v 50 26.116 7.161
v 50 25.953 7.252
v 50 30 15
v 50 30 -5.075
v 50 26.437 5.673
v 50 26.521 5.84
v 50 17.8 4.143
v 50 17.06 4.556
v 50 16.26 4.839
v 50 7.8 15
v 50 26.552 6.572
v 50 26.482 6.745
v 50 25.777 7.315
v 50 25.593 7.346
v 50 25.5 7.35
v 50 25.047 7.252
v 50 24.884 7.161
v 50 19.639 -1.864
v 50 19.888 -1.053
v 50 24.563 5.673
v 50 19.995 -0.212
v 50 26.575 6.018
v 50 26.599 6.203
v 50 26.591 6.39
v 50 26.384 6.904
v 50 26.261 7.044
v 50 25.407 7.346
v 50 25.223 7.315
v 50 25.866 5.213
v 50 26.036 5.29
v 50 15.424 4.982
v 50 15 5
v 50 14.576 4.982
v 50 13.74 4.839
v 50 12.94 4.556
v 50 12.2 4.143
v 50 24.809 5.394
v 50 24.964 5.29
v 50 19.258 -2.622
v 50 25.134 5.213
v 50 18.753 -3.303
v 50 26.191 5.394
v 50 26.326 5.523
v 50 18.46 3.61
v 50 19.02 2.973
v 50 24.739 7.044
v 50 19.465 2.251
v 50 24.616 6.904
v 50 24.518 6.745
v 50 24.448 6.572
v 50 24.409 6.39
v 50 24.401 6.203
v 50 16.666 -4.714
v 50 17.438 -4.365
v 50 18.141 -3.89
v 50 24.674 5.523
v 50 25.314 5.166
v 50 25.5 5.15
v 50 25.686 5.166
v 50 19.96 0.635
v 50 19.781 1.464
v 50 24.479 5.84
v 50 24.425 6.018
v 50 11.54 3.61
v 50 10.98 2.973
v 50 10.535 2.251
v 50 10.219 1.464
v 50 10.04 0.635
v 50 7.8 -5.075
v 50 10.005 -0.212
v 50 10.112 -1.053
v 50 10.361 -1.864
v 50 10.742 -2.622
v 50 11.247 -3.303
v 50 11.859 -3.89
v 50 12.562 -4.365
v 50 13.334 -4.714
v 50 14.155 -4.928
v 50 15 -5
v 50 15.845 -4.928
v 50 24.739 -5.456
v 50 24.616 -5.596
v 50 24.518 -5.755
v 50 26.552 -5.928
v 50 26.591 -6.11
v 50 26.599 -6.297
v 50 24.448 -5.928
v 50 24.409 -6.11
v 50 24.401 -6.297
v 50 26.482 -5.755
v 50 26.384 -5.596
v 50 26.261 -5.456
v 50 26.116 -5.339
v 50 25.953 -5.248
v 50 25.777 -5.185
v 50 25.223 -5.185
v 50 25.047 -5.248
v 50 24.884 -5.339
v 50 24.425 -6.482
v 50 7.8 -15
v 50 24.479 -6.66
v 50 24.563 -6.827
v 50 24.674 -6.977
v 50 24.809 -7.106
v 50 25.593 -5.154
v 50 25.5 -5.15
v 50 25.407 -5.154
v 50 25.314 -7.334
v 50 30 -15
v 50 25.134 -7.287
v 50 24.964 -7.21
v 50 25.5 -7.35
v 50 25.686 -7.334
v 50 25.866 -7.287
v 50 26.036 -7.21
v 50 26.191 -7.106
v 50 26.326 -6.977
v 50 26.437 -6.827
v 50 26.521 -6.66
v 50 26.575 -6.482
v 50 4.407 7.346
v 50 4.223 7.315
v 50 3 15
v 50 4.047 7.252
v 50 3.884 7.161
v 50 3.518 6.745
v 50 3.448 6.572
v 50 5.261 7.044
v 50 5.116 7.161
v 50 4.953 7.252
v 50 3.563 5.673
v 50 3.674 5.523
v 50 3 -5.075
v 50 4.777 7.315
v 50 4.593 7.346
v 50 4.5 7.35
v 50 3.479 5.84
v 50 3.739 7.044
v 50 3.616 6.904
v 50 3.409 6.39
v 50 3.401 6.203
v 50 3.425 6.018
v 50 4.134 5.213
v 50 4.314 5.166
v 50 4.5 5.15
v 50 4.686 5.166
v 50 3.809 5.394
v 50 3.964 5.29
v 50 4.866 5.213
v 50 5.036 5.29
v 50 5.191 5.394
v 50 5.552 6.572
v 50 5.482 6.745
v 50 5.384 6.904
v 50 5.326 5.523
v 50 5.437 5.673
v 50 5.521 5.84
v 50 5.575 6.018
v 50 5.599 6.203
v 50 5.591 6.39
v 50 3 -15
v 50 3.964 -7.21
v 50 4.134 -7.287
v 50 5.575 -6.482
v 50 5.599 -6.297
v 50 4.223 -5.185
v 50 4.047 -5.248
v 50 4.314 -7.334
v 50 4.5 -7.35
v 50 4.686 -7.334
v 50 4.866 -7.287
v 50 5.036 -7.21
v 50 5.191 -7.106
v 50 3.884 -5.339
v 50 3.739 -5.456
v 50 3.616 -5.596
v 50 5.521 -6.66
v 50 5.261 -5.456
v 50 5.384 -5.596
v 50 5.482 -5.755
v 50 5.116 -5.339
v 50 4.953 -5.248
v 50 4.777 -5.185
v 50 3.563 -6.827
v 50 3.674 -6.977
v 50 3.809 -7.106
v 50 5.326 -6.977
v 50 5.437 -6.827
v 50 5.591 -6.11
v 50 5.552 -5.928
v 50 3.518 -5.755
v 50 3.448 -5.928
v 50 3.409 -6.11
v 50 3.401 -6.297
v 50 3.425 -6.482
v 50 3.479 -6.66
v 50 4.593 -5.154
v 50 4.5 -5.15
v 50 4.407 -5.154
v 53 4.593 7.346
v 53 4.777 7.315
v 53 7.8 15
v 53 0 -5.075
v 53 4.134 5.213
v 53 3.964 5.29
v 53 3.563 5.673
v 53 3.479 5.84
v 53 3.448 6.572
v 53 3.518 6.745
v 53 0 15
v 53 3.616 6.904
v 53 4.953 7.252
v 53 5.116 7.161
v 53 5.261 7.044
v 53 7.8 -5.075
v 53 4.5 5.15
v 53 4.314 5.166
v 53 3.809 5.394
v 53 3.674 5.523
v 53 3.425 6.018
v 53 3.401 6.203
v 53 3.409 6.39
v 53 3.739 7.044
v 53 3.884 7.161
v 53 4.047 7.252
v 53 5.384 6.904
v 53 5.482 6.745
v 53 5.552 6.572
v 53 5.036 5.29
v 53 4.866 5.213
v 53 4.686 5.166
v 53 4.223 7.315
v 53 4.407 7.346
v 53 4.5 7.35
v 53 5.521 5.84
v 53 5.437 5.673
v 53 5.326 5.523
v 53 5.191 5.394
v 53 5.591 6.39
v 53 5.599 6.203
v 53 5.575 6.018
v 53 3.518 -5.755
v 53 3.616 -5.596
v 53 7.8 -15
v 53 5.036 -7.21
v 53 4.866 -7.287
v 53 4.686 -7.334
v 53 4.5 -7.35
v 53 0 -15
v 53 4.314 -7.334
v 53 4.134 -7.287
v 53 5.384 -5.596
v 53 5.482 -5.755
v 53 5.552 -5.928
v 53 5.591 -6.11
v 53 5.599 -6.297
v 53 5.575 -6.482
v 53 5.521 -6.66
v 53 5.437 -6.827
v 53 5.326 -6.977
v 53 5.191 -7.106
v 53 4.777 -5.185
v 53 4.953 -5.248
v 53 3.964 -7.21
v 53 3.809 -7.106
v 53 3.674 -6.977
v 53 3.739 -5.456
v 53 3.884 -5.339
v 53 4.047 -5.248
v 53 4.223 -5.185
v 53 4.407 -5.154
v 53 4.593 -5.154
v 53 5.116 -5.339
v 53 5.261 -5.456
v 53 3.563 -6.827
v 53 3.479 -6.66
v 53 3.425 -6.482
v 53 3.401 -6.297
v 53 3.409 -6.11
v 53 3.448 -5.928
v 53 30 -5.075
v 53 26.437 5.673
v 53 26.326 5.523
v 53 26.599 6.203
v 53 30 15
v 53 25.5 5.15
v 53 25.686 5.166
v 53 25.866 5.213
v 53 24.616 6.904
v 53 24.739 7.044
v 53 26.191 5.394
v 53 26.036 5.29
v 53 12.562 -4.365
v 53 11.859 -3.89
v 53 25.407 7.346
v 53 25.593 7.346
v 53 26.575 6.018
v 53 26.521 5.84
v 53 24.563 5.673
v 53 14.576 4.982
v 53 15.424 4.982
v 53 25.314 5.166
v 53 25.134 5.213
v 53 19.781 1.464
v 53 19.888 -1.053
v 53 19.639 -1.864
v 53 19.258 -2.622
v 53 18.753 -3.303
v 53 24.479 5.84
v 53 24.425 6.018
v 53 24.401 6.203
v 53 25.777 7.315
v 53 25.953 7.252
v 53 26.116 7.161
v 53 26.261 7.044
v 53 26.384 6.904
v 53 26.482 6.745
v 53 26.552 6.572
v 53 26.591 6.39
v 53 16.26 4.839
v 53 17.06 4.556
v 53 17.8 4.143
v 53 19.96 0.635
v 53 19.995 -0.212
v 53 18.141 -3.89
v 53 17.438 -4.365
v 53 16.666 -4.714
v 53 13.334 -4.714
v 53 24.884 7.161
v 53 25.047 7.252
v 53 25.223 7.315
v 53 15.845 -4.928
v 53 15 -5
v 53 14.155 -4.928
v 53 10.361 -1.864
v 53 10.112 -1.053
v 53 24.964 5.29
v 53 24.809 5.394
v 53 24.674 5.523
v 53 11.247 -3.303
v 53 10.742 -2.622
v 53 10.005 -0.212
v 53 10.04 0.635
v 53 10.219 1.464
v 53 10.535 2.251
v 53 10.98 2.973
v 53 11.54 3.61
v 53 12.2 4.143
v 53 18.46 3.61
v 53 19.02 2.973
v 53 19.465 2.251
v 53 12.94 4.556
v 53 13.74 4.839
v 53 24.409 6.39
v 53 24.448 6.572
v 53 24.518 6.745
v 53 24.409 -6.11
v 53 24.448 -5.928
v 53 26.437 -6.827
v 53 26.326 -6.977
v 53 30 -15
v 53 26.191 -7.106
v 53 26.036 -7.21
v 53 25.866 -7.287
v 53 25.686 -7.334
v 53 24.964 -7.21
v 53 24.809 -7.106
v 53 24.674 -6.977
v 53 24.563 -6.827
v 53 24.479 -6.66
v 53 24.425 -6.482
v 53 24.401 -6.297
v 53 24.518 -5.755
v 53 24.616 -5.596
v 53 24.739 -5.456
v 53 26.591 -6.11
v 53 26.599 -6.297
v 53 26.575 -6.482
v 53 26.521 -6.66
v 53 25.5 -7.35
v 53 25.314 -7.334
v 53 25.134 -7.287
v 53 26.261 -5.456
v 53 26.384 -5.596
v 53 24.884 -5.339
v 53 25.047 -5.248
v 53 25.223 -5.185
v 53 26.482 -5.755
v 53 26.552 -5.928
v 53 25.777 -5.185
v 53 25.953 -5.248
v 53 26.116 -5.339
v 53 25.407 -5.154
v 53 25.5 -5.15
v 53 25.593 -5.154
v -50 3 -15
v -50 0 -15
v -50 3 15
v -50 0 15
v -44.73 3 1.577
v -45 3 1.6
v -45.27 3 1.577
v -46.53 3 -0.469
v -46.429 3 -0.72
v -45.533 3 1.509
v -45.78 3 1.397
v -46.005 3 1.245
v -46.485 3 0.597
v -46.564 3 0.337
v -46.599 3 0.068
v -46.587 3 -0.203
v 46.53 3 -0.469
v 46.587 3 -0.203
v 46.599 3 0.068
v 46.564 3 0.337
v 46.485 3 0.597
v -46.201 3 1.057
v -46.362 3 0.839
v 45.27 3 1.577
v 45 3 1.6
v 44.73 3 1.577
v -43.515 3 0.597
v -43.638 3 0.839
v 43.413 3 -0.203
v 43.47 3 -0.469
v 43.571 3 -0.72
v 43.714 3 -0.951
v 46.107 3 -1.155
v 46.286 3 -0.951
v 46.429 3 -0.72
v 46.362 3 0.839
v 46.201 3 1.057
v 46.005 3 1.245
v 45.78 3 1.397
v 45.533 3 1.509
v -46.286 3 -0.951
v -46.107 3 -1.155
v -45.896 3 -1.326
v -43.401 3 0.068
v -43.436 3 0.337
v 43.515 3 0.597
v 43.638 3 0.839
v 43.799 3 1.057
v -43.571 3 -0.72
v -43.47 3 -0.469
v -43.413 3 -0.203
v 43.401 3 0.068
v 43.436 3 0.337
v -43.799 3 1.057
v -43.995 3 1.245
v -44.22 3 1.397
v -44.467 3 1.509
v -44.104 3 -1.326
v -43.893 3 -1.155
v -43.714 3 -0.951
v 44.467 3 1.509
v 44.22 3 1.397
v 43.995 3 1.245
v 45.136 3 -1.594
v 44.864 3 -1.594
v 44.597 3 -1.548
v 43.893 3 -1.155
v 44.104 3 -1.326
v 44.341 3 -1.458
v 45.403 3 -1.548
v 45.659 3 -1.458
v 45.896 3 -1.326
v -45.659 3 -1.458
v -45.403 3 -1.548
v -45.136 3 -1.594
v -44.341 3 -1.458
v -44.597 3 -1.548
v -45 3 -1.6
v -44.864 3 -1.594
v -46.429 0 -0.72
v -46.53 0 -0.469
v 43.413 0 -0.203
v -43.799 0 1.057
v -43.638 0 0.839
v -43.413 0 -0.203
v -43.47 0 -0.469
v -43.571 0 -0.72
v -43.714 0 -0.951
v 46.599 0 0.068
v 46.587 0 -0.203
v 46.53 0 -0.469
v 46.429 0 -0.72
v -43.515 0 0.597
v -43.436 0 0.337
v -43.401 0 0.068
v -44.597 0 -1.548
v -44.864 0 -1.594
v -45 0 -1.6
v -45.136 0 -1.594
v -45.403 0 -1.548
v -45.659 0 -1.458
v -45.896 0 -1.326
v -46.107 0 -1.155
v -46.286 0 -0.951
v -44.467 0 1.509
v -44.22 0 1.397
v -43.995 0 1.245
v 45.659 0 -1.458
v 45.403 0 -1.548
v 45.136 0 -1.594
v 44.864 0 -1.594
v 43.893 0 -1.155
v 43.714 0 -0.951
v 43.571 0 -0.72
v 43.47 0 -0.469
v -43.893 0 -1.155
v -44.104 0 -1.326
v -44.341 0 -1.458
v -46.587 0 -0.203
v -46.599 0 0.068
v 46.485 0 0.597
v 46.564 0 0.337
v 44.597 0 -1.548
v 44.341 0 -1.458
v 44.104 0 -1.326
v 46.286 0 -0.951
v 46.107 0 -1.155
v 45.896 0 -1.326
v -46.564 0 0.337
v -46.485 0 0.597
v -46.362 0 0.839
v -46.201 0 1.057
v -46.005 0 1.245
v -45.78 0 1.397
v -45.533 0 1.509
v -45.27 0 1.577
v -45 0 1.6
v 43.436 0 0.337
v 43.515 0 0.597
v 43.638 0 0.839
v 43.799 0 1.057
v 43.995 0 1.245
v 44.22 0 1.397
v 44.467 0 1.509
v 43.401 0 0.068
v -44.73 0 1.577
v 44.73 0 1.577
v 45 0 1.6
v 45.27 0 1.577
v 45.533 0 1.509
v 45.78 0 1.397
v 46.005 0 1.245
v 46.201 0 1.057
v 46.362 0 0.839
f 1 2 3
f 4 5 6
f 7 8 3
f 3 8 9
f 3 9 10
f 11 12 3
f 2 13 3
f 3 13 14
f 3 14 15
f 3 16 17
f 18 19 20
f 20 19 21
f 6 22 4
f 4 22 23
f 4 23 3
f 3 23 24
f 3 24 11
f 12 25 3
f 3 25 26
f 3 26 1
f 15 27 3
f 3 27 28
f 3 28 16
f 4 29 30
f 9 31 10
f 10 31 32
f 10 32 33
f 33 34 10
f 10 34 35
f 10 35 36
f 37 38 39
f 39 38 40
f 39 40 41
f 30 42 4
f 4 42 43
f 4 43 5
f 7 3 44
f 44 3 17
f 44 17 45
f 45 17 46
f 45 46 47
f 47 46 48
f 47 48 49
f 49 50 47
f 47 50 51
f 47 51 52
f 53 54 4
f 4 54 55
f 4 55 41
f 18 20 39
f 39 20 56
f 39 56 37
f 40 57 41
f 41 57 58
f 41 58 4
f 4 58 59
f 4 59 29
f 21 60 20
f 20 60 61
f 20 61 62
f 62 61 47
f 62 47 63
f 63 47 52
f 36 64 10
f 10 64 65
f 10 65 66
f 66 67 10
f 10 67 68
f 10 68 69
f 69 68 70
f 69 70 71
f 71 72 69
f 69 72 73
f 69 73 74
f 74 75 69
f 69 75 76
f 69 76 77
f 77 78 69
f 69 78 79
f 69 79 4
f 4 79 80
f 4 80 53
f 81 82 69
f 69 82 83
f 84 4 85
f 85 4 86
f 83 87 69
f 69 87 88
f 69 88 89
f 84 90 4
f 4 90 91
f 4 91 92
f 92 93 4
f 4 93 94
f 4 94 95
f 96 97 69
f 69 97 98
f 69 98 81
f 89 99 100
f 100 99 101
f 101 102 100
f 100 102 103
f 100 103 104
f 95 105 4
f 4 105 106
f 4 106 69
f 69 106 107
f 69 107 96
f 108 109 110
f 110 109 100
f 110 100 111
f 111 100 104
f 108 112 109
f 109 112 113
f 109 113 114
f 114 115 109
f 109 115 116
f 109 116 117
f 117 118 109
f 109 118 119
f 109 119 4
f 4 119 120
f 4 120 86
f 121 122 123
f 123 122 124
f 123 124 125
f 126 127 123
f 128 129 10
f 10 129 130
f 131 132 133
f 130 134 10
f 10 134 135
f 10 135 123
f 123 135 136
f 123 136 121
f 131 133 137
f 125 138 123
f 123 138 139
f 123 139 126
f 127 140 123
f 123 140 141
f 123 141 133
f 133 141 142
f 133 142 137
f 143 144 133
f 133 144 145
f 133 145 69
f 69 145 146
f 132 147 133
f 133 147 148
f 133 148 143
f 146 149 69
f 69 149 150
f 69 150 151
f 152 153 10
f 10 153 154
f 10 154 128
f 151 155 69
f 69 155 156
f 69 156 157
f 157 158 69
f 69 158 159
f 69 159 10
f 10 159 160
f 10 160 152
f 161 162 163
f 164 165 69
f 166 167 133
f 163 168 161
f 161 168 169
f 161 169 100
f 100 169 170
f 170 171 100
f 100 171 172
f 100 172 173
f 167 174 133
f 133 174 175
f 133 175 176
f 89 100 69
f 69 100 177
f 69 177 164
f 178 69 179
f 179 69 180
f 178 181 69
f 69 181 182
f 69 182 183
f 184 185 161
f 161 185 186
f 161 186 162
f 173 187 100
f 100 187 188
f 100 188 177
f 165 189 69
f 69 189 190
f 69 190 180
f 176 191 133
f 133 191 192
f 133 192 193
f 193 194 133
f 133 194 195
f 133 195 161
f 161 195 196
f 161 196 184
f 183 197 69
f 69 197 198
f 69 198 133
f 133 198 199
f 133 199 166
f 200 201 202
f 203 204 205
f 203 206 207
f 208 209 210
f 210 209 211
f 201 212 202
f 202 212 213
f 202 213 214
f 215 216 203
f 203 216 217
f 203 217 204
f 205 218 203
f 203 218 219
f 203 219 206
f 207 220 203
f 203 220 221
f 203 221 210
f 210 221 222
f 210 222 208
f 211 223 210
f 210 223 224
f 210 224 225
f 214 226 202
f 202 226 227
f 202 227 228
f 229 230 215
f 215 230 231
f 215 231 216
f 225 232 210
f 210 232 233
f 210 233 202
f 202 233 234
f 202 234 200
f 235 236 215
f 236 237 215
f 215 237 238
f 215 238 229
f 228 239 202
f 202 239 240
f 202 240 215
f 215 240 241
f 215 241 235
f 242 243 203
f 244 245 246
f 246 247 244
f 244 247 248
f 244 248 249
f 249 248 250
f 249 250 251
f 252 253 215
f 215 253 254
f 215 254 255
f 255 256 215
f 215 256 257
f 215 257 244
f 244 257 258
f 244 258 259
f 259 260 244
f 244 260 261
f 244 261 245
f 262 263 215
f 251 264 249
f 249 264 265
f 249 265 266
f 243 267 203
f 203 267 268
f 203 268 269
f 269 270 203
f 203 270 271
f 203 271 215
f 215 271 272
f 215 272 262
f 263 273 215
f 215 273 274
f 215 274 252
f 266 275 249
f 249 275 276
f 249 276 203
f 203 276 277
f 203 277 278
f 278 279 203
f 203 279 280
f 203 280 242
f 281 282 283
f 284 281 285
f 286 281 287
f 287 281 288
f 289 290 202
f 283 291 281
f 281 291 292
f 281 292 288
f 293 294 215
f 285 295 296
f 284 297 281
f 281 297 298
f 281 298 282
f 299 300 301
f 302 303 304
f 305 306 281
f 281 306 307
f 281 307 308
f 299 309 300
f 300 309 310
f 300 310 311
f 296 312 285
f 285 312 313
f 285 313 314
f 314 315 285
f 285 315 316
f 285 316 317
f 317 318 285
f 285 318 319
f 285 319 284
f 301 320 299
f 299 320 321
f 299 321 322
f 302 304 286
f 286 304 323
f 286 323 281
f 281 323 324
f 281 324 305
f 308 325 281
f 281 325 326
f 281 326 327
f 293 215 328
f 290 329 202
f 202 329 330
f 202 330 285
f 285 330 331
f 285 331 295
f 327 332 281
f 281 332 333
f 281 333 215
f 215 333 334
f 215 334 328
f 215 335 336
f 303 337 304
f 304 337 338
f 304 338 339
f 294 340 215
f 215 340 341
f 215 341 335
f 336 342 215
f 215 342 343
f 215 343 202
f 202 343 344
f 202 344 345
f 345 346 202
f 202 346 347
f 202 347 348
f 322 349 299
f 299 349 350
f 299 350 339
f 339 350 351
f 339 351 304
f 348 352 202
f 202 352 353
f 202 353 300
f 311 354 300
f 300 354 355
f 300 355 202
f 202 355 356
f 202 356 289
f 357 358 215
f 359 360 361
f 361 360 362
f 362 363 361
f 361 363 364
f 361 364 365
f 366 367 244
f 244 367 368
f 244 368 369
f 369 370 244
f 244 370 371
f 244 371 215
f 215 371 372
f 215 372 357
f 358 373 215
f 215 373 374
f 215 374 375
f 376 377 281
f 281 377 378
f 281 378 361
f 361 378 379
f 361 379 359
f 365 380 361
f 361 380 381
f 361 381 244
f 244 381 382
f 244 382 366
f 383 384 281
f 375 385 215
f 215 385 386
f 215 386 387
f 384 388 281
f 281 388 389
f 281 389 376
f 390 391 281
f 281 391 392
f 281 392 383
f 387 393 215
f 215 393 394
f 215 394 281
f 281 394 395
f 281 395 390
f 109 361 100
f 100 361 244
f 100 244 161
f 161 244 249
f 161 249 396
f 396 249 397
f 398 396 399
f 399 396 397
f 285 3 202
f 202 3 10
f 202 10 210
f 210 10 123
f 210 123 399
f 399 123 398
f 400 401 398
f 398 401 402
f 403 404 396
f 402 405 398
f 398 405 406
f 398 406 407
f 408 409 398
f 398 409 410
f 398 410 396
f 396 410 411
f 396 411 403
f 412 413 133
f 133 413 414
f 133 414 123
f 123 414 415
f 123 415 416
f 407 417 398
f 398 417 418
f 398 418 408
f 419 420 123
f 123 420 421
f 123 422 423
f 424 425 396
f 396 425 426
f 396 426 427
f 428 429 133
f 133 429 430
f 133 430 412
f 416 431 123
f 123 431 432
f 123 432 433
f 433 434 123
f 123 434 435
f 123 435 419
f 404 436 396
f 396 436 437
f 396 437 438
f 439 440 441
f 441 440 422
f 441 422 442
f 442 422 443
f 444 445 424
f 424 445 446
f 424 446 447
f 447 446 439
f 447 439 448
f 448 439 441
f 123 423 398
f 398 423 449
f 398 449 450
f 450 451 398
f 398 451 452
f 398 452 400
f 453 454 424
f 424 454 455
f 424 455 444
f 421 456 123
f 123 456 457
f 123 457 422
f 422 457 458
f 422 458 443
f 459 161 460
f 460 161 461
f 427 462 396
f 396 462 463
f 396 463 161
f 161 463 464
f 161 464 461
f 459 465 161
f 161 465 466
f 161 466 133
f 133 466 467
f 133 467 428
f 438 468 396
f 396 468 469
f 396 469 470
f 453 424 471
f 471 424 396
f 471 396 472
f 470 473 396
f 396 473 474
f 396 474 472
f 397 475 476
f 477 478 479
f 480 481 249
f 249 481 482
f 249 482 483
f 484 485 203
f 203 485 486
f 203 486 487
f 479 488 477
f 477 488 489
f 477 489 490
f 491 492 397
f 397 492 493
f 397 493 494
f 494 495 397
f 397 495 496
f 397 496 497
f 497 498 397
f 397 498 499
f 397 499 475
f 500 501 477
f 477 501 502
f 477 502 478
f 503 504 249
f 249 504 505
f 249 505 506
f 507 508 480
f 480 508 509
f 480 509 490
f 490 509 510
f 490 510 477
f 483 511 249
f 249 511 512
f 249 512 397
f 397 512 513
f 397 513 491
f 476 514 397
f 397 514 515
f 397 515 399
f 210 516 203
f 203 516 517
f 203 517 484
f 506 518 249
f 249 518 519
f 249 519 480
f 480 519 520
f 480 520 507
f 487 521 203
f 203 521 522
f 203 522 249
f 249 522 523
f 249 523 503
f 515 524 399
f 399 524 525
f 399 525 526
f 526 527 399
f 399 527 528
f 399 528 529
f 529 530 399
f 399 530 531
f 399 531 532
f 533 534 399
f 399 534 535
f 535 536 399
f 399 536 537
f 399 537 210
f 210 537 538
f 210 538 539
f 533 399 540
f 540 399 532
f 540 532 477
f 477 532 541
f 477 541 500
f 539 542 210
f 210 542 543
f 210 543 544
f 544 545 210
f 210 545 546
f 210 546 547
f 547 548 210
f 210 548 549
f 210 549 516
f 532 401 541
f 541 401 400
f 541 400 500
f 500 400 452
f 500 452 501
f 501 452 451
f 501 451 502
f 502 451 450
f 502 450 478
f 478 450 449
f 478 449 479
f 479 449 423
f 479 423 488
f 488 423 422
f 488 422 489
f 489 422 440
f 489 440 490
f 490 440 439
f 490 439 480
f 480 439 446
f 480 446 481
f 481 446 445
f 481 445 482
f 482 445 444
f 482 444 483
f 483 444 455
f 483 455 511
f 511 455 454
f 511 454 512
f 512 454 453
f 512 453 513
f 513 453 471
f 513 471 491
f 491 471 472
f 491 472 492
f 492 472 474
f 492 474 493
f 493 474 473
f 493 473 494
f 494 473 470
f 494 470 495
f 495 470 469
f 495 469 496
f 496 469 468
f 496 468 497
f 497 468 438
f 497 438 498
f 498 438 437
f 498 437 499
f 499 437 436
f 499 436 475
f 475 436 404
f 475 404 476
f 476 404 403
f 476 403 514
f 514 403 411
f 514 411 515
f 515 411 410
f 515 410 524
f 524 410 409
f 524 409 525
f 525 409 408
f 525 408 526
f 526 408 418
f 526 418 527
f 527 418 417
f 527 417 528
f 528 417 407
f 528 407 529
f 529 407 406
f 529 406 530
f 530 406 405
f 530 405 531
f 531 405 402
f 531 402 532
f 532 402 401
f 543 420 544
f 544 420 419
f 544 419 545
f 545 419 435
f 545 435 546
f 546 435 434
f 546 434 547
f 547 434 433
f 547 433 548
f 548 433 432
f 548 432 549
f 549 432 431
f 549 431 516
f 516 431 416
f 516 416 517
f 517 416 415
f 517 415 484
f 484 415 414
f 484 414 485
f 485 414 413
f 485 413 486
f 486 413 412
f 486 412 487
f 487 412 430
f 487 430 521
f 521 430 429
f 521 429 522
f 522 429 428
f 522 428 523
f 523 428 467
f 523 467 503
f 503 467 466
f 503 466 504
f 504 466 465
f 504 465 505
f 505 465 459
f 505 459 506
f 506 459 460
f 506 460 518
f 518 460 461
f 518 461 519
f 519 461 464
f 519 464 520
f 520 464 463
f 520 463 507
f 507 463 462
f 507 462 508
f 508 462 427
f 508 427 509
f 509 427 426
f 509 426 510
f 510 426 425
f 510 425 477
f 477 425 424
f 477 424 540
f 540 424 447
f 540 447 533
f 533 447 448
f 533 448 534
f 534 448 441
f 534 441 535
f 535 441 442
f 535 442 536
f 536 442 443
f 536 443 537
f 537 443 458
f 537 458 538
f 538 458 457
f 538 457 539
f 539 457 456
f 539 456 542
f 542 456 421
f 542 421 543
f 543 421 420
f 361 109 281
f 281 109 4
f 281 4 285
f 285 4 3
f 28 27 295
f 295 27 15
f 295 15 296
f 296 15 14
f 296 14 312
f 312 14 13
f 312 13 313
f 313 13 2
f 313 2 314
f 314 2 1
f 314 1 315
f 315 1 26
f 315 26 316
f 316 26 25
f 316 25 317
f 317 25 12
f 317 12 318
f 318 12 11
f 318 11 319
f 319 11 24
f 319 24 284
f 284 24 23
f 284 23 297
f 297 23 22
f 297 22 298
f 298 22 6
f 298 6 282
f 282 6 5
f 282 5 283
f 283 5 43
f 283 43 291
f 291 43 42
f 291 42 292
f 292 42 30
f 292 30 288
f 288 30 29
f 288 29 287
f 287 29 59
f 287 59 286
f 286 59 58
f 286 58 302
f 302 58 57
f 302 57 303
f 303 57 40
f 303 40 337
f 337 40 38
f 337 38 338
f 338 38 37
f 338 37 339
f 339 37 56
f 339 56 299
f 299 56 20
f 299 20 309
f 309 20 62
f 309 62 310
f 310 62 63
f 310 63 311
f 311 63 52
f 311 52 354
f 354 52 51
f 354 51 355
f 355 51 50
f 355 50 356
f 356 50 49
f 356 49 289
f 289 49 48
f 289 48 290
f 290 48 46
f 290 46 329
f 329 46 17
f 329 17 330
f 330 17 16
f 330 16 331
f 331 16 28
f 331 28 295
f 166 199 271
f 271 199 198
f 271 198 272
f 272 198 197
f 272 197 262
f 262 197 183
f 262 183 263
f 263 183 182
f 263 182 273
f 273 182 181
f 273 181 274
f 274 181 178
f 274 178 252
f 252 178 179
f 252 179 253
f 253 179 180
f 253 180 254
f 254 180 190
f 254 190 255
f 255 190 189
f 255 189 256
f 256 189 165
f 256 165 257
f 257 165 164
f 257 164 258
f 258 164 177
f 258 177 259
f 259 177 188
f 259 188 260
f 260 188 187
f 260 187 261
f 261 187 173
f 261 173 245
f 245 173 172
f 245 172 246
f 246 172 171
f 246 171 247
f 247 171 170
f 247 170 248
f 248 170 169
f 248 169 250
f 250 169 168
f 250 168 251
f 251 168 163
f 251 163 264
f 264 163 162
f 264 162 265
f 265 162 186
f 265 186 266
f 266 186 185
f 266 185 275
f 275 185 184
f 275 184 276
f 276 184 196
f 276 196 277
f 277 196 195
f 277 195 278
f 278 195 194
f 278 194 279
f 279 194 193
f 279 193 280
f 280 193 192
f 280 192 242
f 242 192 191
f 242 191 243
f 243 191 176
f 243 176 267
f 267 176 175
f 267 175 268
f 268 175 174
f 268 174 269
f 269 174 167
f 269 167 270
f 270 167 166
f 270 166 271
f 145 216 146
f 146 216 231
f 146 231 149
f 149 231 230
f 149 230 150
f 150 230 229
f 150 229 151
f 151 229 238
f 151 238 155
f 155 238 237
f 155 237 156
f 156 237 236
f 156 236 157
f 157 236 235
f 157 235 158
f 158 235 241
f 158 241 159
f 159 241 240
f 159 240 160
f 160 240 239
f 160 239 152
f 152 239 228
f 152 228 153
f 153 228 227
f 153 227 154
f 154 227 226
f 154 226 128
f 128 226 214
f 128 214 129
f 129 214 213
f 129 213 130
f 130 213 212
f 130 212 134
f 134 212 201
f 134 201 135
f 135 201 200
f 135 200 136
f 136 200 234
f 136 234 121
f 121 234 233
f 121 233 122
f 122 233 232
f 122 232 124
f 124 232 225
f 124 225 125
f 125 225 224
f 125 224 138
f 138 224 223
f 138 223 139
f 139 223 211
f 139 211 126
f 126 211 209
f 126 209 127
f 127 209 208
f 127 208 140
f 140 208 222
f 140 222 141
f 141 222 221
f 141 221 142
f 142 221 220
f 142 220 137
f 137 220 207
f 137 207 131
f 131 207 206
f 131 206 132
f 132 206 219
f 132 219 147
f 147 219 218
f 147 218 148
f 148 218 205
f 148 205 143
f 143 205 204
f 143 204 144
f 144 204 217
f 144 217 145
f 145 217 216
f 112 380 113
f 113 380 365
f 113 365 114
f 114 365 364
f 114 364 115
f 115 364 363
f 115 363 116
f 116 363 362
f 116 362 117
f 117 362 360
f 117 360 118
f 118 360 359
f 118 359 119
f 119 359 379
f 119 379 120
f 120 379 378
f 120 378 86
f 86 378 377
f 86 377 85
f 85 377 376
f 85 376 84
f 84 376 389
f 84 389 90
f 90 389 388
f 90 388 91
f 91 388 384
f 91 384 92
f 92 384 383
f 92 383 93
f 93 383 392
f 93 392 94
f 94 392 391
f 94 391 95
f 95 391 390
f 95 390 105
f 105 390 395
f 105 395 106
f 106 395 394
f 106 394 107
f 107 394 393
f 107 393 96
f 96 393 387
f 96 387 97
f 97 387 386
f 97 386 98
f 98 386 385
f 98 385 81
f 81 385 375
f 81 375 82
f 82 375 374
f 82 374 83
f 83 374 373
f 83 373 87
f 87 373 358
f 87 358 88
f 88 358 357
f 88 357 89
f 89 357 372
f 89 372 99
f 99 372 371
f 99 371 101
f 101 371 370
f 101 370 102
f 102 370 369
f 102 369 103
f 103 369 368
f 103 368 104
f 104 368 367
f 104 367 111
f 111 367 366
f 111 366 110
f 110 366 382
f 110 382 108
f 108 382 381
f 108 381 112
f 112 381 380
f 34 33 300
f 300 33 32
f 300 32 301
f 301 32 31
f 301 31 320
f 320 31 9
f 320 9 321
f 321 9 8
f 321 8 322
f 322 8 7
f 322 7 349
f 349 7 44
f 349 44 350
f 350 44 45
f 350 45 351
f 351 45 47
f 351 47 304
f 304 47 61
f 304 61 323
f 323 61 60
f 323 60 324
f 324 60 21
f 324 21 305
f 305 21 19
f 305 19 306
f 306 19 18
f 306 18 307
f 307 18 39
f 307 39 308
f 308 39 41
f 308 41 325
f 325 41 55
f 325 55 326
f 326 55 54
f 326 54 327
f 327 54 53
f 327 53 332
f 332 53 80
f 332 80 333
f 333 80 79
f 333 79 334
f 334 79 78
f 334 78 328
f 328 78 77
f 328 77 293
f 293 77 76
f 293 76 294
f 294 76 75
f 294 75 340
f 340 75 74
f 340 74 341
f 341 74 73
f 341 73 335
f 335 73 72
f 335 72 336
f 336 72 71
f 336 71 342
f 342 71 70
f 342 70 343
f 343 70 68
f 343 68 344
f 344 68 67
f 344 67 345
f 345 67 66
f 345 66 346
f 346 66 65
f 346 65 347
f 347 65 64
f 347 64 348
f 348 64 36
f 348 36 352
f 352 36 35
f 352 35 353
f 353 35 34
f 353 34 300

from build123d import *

# Parameters (mm, degrees)
SKETCH1_W           = 100
SKETCH1_H           = 30
BOSS_EXTRUDE1_DEPTH = 3
SKETCH2_R           = 1.6
CUT_EXTRUDE1_DEPTH  = 53.28766585
SKETCH5_W           = 30
SKETCH5_H           = 30
BOSS_EXTRUDE2_DEPTH = 3
SKETCH6_R           = 1.1
CUT_EXTRUDE2_DEPTH  = 109.323589305
SKETCH7_R           = 5
CUT_EXTRUDE3_DEPTH  = 109.323589305


with BuildPart() as part:
    # Sketch1 → Boss-Extrude1 (new body)
    with BuildSketch(Plane(origin=(0, 0, 0), x_dir=(1, 0, 0), z_dir=(0, 1, 0))):
        Rectangle(SKETCH1_W, SKETCH1_H)
    extrude(amount=BOSS_EXTRUDE1_DEPTH)

    # Sketch2 → Cut-Extrude1 (cut, through all)
    with BuildSketch(Plane(origin=(0, 3, 0), x_dir=(1, 0, 0), z_dir=(0, 1, 0))):
        with Locations(Location((45, 0, 0), (0, 0, 270))):
            Circle(SKETCH2_R)
        with Locations(Location((-45, 0, 0), (0, 0, 90))):
            Circle(SKETCH2_R)
    extrude(amount=-CUT_EXTRUDE1_DEPTH, mode=Mode.SUBTRACT)

    # Sketch5 → Boss-Extrude2 (add)
    with BuildSketch(Plane(origin=(50, 0, 0), x_dir=(0, 0, -1), z_dir=(1, 0, 0))):
        with Locations((0, 15)):
            Rectangle(SKETCH5_W, SKETCH5_H)
    extrude(amount=BOSS_EXTRUDE2_DEPTH)

    # Sketch6 → Cut-Extrude2 (cut, through all)
    with BuildSketch(Plane(origin=(53, 0, 0), x_dir=(0, 0, -1), z_dir=(1, 0, 0))):
        with Locations((-6.25, 25.5)):
            Circle(SKETCH6_R)
        with Locations(Location((6.25, 25.5, 0), (0, 0, 180))):
            Circle(SKETCH6_R)
        with Locations((6.25, 4.5)):
            Circle(SKETCH6_R)
        with Locations(Location((-6.25, 4.5, 0), (0, 0, 180))):
            Circle(SKETCH6_R)
    extrude(amount=-CUT_EXTRUDE2_DEPTH, mode=Mode.SUBTRACT)

    # Sketch7 → Cut-Extrude3 (cut, through all)
    with BuildSketch(Plane(origin=(53, 0, 0), x_dir=(0, 0, -1), z_dir=(1, 0, 0))):
        with Locations((0, 15)):
            Circle(SKETCH7_R)
    extrude(amount=-CUT_EXTRUDE3_DEPTH, mode=Mode.SUBTRACT)


solid = part.part
